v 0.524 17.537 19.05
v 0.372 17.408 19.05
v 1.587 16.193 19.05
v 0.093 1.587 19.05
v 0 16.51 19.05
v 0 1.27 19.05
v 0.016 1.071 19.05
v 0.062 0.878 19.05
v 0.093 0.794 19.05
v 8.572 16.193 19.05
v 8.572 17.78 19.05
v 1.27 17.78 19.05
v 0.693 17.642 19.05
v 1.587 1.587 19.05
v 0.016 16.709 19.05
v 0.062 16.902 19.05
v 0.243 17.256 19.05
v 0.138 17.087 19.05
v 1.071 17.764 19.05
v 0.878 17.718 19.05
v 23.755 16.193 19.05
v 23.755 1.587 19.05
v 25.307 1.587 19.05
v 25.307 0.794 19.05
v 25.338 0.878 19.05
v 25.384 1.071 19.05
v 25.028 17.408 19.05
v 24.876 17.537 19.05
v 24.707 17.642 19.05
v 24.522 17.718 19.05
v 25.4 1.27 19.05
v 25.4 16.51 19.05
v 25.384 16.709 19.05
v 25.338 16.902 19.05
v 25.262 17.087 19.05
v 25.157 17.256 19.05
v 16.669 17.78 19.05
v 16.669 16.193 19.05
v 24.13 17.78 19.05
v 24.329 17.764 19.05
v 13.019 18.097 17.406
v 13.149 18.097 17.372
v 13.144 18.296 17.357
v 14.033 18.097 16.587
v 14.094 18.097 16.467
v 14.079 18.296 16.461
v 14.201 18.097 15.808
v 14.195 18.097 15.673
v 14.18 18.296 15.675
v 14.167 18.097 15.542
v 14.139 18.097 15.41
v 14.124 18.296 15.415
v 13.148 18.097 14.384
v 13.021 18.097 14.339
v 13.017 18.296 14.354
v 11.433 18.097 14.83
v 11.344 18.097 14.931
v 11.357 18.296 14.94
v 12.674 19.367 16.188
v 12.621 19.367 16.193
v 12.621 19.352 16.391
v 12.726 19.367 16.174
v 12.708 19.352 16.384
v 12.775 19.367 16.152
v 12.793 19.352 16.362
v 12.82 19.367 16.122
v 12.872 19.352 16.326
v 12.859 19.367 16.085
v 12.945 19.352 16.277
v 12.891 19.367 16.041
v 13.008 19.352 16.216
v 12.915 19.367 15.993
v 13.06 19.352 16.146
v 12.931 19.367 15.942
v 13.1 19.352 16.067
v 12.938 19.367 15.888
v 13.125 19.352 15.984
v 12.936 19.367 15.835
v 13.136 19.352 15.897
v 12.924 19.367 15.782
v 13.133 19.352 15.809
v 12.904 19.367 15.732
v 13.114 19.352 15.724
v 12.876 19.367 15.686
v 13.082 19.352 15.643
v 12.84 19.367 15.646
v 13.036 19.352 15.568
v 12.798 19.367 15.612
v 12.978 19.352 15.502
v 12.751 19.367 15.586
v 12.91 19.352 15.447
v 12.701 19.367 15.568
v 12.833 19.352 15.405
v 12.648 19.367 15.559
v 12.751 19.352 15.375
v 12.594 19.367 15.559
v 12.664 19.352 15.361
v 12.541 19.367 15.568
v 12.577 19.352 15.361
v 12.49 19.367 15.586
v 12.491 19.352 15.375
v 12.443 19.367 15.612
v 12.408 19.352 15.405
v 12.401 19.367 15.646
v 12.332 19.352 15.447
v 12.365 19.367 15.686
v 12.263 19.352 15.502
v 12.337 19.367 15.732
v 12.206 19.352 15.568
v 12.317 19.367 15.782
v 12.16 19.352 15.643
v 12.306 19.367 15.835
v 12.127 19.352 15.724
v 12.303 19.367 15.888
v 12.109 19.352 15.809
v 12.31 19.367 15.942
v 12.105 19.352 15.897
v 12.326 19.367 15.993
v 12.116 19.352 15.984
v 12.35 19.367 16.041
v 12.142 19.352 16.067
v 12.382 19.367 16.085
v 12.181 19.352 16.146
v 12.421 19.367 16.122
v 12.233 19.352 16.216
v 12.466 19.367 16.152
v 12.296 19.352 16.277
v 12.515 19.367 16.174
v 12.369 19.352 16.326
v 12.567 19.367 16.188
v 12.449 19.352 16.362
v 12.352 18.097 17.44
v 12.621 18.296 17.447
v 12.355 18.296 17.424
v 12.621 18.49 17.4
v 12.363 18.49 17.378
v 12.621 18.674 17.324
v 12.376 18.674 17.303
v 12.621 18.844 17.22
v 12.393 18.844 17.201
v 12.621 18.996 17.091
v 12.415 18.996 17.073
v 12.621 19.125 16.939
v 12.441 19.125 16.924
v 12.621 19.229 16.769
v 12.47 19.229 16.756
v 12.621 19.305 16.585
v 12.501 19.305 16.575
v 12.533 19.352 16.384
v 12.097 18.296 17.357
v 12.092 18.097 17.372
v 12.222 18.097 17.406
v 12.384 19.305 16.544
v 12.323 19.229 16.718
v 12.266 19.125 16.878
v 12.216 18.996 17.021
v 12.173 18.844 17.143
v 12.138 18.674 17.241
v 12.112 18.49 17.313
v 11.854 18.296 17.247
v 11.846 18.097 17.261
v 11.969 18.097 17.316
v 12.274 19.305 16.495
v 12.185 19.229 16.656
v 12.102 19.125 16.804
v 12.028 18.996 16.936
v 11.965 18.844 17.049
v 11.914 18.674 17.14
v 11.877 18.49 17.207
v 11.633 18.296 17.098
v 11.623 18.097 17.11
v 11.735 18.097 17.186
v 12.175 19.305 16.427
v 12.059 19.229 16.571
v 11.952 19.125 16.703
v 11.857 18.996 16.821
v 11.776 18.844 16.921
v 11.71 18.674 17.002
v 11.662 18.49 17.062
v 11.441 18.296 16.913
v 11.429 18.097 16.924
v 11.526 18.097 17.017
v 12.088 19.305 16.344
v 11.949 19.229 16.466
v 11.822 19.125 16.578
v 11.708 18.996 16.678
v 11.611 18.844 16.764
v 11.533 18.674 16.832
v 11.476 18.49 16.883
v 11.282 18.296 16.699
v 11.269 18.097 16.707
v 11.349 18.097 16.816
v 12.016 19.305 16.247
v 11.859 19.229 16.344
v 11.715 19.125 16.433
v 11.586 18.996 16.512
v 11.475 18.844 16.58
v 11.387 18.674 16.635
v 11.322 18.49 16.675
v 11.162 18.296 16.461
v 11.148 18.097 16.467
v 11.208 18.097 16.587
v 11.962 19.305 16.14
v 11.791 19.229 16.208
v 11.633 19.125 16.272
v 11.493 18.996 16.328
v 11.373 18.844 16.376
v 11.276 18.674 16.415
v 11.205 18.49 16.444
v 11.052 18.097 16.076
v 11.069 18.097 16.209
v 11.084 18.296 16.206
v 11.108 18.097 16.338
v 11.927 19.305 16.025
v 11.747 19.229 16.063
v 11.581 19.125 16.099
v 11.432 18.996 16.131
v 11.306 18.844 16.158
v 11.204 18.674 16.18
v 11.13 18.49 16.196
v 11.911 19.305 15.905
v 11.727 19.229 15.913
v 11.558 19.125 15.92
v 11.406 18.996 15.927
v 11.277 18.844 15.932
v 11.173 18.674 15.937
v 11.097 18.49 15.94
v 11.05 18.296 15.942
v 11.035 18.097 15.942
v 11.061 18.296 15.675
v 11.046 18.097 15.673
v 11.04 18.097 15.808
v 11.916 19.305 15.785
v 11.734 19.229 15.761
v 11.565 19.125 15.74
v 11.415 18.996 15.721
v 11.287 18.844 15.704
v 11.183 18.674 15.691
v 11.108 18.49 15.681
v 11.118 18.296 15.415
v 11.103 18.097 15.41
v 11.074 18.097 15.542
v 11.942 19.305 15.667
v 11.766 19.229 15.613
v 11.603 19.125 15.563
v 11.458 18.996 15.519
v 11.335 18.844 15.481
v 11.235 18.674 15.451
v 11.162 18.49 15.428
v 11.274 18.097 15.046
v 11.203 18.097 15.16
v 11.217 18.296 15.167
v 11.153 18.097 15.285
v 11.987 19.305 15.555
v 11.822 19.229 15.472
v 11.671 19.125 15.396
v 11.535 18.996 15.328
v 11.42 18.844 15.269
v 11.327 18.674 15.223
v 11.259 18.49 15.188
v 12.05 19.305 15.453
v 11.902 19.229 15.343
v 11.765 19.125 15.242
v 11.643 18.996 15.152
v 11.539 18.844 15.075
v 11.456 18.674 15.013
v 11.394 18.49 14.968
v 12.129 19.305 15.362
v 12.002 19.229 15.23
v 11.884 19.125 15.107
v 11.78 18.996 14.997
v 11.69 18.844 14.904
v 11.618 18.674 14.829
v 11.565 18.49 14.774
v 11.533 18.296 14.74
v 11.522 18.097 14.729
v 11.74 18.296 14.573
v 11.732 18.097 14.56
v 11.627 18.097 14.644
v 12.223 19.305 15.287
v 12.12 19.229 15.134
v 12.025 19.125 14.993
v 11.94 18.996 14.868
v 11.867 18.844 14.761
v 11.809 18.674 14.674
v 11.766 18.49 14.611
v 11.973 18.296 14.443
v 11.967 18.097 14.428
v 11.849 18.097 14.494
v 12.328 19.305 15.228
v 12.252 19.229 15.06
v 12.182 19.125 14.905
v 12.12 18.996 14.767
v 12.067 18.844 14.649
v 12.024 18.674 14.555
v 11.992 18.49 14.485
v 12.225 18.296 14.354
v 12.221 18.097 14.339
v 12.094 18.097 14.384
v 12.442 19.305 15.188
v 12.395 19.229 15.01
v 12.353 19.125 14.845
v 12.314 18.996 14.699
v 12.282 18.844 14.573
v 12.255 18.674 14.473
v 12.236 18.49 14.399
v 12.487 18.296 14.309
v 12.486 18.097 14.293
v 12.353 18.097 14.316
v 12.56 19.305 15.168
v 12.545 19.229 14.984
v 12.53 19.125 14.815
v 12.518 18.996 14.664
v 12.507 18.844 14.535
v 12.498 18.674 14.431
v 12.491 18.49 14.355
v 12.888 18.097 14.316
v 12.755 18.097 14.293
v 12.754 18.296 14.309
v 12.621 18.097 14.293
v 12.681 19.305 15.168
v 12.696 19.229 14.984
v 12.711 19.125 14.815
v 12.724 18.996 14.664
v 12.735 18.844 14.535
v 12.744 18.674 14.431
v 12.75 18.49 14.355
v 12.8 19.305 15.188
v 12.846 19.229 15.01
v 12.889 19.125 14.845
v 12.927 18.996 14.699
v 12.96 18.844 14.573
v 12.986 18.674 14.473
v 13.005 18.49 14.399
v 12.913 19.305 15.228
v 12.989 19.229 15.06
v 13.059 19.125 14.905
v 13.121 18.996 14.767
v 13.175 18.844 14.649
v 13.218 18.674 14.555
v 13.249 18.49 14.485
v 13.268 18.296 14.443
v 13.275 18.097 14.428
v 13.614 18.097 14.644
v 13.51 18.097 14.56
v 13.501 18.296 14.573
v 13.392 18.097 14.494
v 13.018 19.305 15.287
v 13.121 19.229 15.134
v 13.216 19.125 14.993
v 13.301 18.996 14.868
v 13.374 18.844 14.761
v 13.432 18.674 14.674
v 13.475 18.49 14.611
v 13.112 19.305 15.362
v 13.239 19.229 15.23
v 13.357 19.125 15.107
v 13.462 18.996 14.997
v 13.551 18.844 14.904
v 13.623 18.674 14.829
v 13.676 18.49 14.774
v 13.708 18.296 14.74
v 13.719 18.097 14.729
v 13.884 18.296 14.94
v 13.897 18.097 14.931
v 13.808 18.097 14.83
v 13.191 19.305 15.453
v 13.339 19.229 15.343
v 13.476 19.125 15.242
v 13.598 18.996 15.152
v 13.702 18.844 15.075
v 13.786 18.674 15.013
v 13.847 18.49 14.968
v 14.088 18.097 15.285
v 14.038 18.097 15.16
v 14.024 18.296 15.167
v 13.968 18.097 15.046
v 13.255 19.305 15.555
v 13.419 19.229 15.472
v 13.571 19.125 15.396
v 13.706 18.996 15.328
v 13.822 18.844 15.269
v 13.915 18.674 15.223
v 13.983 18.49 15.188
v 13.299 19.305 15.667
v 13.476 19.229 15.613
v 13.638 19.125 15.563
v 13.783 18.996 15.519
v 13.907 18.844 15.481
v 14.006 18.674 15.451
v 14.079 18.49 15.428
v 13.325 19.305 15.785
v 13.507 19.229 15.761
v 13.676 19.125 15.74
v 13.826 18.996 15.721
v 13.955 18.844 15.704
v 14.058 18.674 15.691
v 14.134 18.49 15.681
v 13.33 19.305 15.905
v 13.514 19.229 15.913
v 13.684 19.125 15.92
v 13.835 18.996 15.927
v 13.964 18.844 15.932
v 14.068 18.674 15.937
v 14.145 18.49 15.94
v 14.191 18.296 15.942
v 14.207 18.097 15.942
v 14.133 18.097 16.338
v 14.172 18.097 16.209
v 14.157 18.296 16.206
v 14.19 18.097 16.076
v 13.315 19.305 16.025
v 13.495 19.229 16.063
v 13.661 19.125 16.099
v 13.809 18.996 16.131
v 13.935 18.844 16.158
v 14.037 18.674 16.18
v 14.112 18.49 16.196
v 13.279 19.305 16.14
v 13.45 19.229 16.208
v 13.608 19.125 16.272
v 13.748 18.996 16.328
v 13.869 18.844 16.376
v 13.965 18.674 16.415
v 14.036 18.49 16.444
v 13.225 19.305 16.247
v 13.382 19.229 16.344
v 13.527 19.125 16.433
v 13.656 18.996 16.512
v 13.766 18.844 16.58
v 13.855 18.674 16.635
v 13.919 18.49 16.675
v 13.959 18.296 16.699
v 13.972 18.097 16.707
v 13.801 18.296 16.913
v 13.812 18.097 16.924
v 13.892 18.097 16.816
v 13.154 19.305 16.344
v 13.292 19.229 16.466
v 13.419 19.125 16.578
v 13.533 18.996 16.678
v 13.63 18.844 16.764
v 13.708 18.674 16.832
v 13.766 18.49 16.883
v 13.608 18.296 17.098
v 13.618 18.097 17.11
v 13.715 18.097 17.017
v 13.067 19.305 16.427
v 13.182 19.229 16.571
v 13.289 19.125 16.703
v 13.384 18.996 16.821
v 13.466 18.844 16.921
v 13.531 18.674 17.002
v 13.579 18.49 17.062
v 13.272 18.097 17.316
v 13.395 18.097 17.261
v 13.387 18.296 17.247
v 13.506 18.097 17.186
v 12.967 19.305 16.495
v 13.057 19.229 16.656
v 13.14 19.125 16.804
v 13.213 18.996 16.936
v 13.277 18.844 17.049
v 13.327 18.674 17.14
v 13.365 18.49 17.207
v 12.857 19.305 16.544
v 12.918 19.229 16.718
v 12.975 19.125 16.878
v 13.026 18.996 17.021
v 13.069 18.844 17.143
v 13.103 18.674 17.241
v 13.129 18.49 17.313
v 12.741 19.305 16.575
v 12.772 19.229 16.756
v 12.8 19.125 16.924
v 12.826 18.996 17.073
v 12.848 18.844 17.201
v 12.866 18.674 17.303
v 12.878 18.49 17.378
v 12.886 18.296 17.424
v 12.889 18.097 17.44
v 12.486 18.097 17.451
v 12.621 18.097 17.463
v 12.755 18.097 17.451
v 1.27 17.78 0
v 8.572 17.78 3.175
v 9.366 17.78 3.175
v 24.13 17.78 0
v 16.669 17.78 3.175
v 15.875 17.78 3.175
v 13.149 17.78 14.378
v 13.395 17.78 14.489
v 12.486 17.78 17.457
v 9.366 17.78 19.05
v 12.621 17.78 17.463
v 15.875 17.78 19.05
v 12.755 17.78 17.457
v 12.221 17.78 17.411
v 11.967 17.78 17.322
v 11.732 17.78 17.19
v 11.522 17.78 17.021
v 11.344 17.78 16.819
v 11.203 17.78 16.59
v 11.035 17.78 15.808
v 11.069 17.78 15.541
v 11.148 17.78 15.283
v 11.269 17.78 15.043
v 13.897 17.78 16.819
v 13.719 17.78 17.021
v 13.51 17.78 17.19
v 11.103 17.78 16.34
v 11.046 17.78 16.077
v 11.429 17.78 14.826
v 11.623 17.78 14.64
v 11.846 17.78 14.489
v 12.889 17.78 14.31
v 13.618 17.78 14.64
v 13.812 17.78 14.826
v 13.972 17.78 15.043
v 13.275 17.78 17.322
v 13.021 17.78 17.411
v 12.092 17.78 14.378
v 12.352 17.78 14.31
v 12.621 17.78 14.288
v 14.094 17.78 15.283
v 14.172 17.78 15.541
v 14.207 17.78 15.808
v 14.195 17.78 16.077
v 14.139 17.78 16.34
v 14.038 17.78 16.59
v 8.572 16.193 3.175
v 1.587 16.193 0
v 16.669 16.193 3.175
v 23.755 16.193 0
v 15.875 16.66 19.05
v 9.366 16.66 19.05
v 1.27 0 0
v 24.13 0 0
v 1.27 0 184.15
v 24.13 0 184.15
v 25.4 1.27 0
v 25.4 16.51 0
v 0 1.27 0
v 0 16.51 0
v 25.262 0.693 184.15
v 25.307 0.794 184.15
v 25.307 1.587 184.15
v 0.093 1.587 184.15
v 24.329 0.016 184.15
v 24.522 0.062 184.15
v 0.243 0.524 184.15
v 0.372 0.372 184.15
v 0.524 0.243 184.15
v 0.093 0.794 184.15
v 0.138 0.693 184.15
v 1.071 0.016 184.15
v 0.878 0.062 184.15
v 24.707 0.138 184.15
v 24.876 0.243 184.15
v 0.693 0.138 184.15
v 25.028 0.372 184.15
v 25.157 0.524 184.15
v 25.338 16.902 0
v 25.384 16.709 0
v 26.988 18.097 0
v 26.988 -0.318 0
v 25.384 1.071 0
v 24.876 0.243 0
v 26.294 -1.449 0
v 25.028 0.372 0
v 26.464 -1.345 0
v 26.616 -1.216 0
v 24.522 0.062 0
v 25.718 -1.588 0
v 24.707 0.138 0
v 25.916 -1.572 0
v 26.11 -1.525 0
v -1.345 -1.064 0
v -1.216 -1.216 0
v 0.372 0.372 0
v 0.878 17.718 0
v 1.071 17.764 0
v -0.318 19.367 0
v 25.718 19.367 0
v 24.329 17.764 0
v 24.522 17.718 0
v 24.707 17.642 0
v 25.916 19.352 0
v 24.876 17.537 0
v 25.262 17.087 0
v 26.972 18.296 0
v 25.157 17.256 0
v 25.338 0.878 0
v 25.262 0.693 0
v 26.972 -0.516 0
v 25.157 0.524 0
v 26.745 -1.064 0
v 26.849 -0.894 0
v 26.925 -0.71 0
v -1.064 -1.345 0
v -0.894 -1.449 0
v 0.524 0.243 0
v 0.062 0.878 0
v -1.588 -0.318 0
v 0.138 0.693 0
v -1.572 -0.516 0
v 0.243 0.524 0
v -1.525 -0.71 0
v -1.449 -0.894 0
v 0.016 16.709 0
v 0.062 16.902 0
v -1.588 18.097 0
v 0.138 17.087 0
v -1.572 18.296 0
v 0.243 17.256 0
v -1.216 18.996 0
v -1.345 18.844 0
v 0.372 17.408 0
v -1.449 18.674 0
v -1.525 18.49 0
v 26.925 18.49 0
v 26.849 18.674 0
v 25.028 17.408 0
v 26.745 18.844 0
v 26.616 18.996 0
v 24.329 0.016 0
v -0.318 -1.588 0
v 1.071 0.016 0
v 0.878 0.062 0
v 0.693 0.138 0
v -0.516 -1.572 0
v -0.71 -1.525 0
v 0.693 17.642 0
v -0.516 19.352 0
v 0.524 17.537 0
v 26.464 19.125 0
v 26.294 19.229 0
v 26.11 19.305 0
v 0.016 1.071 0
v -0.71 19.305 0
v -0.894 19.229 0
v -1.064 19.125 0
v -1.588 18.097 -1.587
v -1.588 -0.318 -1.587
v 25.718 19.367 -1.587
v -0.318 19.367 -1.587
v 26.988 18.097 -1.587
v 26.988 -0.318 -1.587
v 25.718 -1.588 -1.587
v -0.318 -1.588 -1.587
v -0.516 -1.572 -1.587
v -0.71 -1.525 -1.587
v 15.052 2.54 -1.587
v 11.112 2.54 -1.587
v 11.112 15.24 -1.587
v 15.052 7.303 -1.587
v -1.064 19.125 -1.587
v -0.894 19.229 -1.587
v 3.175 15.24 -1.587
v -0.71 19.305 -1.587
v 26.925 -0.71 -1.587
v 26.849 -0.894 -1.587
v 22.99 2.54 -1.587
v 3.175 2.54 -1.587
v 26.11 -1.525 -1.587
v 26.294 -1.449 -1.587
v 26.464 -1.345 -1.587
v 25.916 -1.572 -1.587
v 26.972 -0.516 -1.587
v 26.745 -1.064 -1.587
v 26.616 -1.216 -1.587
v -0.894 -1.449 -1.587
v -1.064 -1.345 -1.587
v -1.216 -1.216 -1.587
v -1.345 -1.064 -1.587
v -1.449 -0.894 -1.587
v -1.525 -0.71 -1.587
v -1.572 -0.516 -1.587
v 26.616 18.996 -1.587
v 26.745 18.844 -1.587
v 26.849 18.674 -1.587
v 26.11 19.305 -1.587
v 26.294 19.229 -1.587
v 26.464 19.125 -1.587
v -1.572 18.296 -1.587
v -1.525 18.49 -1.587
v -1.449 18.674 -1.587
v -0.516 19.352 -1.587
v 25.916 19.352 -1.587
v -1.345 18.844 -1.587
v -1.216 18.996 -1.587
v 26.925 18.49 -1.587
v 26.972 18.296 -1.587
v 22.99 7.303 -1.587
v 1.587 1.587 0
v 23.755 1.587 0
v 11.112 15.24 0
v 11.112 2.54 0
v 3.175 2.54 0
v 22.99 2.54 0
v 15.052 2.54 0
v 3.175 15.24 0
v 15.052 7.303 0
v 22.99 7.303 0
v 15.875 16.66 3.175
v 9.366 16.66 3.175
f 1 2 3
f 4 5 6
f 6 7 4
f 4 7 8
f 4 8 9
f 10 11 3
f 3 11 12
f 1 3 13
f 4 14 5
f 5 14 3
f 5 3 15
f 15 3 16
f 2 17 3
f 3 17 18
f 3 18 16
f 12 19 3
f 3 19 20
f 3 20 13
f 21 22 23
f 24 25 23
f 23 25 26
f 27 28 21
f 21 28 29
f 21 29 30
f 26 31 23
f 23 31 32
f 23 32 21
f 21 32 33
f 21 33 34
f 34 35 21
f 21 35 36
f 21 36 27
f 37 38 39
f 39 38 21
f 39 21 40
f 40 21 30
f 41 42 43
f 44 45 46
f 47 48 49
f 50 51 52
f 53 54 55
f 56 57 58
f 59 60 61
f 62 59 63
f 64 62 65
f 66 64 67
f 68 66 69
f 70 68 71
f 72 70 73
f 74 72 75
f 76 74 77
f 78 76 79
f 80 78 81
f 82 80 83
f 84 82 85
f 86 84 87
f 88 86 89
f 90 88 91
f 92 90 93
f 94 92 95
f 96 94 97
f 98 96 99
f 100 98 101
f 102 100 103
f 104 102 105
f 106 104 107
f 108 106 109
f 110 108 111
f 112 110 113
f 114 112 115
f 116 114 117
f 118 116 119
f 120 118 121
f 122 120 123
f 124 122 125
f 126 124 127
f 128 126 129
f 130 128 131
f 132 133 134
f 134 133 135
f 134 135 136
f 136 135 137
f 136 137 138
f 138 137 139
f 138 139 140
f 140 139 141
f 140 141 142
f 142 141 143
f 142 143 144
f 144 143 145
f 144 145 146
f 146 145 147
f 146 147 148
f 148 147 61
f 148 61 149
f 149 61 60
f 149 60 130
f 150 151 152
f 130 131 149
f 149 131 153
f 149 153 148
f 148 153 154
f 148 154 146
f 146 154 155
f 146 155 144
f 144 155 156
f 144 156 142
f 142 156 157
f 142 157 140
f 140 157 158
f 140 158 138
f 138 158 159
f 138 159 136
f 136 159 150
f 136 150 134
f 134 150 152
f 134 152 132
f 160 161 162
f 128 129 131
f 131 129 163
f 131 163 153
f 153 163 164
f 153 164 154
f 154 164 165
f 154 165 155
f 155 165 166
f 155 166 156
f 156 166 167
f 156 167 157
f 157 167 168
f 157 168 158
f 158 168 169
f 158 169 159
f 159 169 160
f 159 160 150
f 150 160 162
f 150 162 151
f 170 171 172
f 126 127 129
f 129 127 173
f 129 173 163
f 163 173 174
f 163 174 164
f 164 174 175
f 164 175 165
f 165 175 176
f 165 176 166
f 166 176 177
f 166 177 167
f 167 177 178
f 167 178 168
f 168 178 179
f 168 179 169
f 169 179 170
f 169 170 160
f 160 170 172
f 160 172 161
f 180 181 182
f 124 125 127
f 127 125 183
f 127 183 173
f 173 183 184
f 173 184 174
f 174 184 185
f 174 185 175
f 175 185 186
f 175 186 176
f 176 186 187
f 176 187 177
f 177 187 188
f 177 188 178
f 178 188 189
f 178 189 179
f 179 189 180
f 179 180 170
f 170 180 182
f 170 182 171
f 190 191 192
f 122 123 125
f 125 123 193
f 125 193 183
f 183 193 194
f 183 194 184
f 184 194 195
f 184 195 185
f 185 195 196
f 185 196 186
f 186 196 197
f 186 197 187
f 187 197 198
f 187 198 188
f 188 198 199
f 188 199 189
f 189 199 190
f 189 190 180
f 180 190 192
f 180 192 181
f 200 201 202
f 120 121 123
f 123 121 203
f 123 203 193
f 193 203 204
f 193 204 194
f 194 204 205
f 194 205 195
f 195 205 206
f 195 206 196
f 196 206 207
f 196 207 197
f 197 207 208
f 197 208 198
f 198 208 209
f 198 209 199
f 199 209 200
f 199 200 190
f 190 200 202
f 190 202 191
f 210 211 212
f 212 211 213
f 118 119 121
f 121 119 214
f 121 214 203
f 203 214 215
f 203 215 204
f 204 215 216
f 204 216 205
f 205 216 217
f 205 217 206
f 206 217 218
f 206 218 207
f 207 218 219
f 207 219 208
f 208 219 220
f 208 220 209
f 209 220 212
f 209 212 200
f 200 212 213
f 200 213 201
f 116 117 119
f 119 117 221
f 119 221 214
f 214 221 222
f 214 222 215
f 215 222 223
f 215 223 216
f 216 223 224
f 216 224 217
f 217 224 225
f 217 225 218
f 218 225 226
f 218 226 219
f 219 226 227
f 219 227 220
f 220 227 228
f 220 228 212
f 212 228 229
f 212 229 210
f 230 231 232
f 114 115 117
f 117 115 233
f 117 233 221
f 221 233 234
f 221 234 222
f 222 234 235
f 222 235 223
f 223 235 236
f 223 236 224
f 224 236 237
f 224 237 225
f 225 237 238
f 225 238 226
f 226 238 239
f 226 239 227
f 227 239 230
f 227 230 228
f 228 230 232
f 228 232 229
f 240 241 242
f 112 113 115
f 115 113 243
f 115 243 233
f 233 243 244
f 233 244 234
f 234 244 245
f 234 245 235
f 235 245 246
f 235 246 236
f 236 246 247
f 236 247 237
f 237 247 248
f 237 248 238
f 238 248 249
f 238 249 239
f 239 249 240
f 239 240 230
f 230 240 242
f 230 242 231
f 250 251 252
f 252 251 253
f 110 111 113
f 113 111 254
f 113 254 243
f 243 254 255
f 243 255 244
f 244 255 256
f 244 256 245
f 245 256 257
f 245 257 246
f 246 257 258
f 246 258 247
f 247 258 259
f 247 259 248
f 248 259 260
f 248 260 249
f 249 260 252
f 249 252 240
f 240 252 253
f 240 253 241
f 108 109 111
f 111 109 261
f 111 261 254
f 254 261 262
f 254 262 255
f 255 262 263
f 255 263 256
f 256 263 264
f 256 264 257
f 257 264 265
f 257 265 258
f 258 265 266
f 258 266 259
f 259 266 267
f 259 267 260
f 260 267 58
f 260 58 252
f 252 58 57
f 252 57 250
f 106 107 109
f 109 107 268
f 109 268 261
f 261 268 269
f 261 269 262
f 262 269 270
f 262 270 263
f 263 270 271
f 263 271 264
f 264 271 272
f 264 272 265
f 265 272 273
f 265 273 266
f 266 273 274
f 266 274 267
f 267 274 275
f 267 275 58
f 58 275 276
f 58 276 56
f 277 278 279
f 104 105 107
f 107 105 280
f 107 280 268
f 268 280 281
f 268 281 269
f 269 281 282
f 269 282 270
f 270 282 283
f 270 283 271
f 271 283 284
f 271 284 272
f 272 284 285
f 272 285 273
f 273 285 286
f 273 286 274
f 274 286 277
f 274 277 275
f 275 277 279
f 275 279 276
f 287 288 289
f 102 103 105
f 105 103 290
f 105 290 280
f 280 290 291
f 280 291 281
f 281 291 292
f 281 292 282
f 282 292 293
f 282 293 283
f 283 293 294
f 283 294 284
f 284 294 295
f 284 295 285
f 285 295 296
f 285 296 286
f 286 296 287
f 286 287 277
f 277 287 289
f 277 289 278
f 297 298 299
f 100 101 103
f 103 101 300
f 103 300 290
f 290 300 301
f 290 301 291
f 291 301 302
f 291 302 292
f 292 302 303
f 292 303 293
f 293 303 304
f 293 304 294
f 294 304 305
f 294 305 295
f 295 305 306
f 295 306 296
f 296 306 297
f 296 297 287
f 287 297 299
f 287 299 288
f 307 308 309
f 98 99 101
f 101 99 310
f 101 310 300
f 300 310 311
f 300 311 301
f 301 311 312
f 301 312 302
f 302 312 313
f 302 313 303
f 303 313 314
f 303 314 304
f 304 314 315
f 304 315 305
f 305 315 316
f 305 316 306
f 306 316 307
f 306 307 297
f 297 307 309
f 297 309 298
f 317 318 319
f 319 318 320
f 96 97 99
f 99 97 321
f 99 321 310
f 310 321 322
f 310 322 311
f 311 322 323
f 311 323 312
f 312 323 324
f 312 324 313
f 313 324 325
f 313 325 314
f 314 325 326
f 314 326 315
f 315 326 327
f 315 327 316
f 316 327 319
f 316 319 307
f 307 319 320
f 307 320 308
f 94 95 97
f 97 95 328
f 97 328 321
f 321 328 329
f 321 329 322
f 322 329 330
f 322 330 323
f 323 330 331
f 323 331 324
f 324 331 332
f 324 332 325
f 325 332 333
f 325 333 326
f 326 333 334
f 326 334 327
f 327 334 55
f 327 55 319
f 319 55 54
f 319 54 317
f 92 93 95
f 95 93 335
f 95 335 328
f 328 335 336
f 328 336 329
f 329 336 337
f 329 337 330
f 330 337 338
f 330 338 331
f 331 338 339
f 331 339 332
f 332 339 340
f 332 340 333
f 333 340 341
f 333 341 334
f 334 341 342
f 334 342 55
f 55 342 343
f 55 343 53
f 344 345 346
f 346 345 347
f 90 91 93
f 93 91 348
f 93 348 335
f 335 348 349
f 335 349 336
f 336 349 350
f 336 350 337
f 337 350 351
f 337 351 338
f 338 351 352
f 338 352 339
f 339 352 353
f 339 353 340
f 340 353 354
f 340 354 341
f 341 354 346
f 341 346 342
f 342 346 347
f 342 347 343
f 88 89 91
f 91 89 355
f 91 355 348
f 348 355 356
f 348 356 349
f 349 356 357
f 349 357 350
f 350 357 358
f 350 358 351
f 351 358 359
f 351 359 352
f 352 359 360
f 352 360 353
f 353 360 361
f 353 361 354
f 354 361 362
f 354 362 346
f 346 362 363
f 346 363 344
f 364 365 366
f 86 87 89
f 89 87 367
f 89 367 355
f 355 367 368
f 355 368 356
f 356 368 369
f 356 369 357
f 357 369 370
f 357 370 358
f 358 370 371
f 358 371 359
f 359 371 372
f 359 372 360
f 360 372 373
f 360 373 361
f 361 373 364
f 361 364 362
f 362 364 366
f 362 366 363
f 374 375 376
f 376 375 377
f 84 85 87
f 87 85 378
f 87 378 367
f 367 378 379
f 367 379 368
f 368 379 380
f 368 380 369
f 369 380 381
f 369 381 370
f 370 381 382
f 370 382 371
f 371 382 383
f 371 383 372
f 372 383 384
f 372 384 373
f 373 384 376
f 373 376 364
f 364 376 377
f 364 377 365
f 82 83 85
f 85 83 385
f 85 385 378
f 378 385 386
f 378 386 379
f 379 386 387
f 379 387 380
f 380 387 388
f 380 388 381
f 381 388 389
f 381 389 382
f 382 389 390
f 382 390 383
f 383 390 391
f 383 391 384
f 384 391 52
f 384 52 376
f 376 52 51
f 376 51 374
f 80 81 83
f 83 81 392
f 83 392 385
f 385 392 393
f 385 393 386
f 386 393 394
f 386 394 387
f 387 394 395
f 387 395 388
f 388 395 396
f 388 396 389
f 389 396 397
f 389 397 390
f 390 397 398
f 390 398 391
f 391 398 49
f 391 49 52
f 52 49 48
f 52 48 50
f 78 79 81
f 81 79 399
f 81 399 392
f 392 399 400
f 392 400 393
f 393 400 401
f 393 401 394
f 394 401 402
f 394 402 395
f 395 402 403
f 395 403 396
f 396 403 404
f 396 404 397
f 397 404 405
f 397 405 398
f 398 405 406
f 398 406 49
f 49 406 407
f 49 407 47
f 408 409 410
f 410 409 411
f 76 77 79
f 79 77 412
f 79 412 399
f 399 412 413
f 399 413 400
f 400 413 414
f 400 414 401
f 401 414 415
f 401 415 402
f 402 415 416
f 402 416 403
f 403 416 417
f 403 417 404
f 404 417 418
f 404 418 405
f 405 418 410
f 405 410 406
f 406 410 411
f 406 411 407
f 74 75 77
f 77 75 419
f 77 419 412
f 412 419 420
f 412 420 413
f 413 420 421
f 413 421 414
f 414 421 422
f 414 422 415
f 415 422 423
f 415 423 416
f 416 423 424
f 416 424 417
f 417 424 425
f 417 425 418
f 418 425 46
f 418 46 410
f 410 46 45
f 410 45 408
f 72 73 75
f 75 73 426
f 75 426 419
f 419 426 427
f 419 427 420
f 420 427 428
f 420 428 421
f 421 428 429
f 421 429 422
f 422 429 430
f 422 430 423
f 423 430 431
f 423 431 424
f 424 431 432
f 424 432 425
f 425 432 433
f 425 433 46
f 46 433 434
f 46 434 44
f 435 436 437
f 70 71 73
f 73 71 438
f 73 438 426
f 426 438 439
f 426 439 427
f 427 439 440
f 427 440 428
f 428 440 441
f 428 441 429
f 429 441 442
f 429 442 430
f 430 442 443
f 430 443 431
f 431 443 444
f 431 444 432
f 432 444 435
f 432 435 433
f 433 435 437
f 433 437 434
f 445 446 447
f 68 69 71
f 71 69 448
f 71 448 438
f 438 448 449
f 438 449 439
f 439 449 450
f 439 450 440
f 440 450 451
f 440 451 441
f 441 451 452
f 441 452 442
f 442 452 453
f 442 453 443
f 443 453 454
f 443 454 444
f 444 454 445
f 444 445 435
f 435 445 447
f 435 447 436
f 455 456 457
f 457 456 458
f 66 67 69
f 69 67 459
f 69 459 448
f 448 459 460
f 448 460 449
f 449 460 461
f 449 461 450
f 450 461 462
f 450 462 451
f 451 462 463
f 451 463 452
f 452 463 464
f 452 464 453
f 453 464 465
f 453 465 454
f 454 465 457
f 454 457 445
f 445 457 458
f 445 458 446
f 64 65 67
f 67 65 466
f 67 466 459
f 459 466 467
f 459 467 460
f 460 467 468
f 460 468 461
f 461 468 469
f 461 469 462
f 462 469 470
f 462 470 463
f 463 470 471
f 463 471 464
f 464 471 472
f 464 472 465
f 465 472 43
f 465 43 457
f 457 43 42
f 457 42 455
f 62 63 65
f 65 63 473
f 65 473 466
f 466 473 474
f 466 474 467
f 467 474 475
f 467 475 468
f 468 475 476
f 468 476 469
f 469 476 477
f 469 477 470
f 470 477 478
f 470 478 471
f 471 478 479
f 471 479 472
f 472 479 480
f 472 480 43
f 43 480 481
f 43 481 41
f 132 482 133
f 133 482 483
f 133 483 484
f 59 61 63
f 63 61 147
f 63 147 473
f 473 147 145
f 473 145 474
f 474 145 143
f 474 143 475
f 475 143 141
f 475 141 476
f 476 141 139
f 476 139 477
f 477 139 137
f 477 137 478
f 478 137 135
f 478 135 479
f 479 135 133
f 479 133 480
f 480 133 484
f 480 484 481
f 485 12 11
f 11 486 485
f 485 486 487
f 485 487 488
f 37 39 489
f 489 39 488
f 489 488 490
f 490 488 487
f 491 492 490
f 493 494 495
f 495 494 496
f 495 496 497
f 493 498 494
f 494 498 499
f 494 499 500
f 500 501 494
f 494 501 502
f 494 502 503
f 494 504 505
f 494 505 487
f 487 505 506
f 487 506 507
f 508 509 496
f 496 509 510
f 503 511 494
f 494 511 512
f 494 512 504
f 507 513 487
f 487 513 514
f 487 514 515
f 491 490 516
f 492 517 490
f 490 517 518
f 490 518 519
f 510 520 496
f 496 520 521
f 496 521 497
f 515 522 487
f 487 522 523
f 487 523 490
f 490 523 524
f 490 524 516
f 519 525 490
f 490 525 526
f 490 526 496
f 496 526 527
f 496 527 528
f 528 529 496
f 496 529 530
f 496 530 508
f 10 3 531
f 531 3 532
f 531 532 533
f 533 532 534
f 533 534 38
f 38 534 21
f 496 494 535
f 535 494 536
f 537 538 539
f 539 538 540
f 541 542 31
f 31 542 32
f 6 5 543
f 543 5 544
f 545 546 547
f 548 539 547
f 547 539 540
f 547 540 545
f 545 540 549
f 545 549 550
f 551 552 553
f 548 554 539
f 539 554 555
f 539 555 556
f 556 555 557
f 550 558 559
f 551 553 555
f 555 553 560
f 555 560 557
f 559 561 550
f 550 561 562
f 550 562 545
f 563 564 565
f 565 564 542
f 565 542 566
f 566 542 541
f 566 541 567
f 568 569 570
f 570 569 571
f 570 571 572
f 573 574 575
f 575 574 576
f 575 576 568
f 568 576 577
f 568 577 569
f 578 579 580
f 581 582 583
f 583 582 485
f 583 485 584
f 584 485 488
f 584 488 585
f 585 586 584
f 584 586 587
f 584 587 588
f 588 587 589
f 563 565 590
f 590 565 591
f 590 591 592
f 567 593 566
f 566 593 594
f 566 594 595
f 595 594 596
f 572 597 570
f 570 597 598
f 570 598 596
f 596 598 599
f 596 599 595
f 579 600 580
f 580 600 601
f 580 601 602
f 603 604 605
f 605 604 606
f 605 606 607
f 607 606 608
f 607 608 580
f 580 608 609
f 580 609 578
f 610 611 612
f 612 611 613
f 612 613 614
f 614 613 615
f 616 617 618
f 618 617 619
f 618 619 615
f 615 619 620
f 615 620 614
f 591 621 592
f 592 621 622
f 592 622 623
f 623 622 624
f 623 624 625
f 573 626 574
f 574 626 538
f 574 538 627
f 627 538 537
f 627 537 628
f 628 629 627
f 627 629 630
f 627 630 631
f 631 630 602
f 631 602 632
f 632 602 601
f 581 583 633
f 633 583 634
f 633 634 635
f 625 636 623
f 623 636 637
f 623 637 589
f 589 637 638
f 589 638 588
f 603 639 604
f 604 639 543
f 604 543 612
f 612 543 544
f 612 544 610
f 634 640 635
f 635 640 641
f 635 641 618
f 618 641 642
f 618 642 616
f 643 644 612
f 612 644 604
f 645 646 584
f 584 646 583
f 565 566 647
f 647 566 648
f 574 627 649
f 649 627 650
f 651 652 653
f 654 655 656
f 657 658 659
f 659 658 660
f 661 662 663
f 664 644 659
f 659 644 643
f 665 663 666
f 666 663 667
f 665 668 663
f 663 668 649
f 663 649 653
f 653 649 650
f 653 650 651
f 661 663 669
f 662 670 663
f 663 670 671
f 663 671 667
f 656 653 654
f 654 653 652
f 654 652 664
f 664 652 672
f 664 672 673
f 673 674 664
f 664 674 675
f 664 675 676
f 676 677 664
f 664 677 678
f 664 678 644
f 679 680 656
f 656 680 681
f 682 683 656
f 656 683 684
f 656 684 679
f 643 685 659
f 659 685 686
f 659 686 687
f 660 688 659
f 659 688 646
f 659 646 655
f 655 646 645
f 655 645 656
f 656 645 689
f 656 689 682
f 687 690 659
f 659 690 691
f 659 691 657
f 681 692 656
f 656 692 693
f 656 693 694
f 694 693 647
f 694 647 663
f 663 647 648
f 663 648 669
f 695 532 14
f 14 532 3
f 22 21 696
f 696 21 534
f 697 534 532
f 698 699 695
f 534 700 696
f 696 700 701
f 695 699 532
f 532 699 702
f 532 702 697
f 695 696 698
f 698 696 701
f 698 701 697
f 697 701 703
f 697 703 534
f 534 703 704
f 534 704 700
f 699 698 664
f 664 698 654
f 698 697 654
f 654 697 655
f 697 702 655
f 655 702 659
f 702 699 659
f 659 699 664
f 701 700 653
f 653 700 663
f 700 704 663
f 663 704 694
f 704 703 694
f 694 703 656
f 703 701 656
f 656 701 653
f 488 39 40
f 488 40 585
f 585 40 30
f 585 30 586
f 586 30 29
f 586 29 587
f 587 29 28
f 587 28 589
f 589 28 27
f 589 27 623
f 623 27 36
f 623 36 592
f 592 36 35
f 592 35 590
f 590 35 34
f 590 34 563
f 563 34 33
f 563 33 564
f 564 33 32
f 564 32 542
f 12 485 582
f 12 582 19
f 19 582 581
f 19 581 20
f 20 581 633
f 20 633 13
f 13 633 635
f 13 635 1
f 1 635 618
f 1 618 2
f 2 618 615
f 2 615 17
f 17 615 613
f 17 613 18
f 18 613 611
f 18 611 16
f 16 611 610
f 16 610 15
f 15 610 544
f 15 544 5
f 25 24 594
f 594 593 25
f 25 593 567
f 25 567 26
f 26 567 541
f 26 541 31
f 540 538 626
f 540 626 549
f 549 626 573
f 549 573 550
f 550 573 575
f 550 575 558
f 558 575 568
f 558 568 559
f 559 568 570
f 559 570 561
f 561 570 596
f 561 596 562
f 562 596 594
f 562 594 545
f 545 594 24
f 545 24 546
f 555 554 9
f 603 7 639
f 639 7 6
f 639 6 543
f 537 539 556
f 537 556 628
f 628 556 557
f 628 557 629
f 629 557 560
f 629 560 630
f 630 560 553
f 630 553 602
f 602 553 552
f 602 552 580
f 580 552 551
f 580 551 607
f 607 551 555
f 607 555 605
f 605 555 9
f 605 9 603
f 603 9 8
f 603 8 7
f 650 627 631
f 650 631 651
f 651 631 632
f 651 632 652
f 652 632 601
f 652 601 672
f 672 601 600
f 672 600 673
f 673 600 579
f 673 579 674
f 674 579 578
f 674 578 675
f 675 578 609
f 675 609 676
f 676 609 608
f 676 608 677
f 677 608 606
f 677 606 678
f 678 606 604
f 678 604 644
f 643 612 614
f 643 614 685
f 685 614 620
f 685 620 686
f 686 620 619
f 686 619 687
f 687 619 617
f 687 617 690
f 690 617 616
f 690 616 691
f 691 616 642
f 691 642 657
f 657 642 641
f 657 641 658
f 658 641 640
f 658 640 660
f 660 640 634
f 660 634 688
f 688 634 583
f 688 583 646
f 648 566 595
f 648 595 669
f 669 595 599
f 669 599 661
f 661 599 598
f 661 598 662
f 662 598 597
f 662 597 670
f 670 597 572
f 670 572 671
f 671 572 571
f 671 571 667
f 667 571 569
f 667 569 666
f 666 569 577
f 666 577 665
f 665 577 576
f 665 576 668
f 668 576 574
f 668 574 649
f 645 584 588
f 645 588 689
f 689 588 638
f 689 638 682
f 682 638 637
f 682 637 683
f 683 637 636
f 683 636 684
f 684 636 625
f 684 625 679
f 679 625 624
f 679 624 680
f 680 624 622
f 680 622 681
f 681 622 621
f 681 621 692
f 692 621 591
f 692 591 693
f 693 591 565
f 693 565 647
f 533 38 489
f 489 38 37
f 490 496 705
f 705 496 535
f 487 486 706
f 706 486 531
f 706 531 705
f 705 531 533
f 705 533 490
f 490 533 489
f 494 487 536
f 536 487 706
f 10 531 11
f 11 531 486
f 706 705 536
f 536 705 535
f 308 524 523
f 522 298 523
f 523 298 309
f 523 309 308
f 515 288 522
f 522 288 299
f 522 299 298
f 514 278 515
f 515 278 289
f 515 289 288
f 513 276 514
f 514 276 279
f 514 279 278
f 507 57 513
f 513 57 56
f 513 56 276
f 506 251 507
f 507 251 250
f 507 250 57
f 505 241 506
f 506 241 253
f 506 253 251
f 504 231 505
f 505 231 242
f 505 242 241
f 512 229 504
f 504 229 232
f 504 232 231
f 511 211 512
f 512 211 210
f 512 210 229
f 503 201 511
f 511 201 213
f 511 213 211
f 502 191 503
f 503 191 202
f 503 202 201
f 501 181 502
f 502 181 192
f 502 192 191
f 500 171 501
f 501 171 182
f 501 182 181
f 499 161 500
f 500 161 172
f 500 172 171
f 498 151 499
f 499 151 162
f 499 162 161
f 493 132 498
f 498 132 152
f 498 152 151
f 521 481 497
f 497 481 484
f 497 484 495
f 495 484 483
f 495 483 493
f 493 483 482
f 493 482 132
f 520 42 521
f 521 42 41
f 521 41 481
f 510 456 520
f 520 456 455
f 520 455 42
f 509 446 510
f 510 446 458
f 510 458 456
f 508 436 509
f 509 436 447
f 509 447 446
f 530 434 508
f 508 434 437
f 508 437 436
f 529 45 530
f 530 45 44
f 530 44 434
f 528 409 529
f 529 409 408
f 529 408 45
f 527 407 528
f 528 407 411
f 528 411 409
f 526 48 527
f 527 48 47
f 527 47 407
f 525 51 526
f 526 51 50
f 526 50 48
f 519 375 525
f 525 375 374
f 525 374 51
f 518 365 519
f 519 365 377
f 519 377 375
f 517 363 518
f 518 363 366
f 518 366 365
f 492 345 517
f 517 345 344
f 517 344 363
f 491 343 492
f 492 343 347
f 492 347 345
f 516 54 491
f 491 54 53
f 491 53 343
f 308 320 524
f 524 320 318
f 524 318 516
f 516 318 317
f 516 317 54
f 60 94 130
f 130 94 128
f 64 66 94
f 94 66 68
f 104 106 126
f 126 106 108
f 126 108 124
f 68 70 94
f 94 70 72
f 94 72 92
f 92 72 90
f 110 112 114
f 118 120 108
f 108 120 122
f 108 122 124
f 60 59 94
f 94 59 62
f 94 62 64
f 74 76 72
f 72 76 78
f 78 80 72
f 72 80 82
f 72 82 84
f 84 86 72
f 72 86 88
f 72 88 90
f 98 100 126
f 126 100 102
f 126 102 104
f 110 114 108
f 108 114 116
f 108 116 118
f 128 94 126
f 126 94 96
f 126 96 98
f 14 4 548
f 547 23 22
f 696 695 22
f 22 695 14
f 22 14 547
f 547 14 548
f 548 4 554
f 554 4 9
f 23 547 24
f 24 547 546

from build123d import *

# Parameters (mm, degrees)
SKETCH1_W           = 25.4
SKETCH1_H           = 17.78
BOSS_EXTRUDE1_DEPTH = 19.05
SKETCH2_W           = 25.4
SKETCH2_H           = 0.79375
BOSS_EXTRUDE2_DEPTH = 165.1
SKETCH3_W           = 28.575
SKETCH3_H           = 20.955
BOSS_EXTRUDE3_DEPTH = 1.5875
SKETCH4_W           = 22.167429019
SKETCH4_H           = 15.39875
CUT_EXTRUDE1_DEPTH  = 19.05
CUT_EXTRUDE2_DEPTH  = 1.5875
SKETCH8_W           = 7.9375
SKETCH8_H           = 4.7625
CUT_EXTRUDE3_DEPTH  = 1.5875
FILLET9_R           = 1.27
FILLET10_R          = 1.27
FILLET11_R          = 1.27
FILLET12_R          = 1.27
FILLET13_R          = 1.27
FILLET14_R          = 1.27
FILLET15_R          = 1.27
FILLET16_R          = 1.27
SKETCH9_W           = 0.79375
SKETCH9_H           = 15.875
CUT_EXTRUDE5_DEPTH  = 1.5875
SKETCH11_W          = 0.79375
SKETCH11_H          = 15.875
CUT_EXTRUDE6_DEPTH  = 1.5875
SKETCH12_W          = 6.50875
SKETCH12_H          = 0.467297544
CUT_EXTRUDE7_DEPTH  = 15.875
SKETCH13_R          = 1.5875
BOSS_EXTRUDE5_DEPTH = 1.5875
FILLET22_R          = 1.27
SKETCH17_W          = 22.167429019
SKETCH17_H          = 19.05
BOSS_EXTRUDE6_DEPTH = 0.79375
SKETCH18_W          = 25.21464302
SKETCH18_H          = 165.1
BOSS_EXTRUDE7_DEPTH = 0.79375


with BuildPart() as part:
    # Sketch1 → Boss-Extrude1 (new body)
    with BuildSketch(Plane.XY):
        with Locations((12.7, 8.89)):
            Rectangle(SKETCH1_W, SKETCH1_H)
    extrude(amount=BOSS_EXTRUDE1_DEPTH)

    # Sketch2 → Boss-Extrude2 (add)
    with BuildSketch(Plane.XY.offset(19.05)):
        with Locations((12.7, 0.396875)):
            Rectangle(SKETCH2_W, SKETCH2_H)
    extrude(amount=BOSS_EXTRUDE2_DEPTH)

    # Sketch3 → Boss-Extrude3 (add)
    with BuildSketch(Plane(origin=(0, 0, 0), x_dir=(-1, 0, 0), z_dir=(0, 0, -1))):
        with Locations((-12.7, 8.89)):
            Rectangle(SKETCH3_W, SKETCH3_H)
    extrude(amount=BOSS_EXTRUDE3_DEPTH)

    # Sketch4 → Cut-Extrude1 (cut)
    with BuildSketch(Plane.XY.offset(19.05)):
        with Locations((12.67121451, 8.493125)):
            Rectangle(SKETCH4_W, SKETCH4_H)
    extrude(amount=-CUT_EXTRUDE1_DEPTH, mode=Mode.SUBTRACT)

    # Sketch5 → Cut-Extrude2 (cut)
    with BuildSketch(Plane(origin=(0, 0, -1.5875), x_dir=(-1, 0, 0), z_dir=(0, 0, -1))):
        Polygon((-11.1125, 15.24), (-11.1125, 8.89), (-11.1125, 2.54), (-3.175, 2.54), (-3.175, 15.24), align=None)
    extrude(amount=-CUT_EXTRUDE2_DEPTH, mode=Mode.SUBTRACT)

    # Sketch8 → Cut-Extrude3 (cut)
    with BuildSketch(Plane(origin=(0, 0, -1.5875), x_dir=(-1, 0, 0), z_dir=(0, 0, -1))):
        with Locations((-19.021212582, 4.92125)):
            Rectangle(SKETCH8_W, SKETCH8_H)
    extrude(amount=-CUT_EXTRUDE3_DEPTH, mode=Mode.SUBTRACT)

    # Fillet9
    fillet9_edges = [part.edges().sort_by_distance(p)[0] for p in [
        (25.4, 17.78, 9.525),
    ]]
    fillet(fillet9_edges, radius=FILLET9_R)

    # Fillet10
    fillet10_edges = [part.edges().sort_by_distance(p)[0] for p in [
        (0, 17.78, 9.525),
    ]]
    fillet(fillet10_edges, radius=FILLET10_R)

    # Fillet11
    # the kernel refuses this fillet: 1.27 mm, written as the material it takes off along each edge
    with BuildSketch(Plane(origin=(25.4, 0, 0), x_dir=(0, 1, 0), z_dir=(0, 0, 1))) as fillet11_piece_1:
        with BuildLine():
            CenterArc((FILLET11_R, FILLET11_R), FILLET11_R, 180, 90)
            Line((0, FILLET11_R), (0, 0))
            Line((0, 0), (FILLET11_R, 0))
        make_face()
    extrude(amount=187.325, mode=Mode.SUBTRACT)

    # Fillet12
    # the kernel refuses this fillet: 1.27 mm, written as the material it takes off along each edge
    with BuildSketch(Plane(origin=(0, 0, 187.325), x_dir=(0, 1, 0), z_dir=(0, 0, -1))) as fillet12_piece_1:
        with BuildLine():
            CenterArc((FILLET12_R, FILLET12_R), FILLET12_R, 180, 90)
            Line((0, FILLET12_R), (0, 0))
            Line((0, 0), (FILLET12_R, 0))
        make_face()
    extrude(amount=187.325, mode=Mode.SUBTRACT)

    # Fillet13
    fillet13_edges = [part.edges().sort_by_distance(p)[0] for p in [
        (-1.5875, -1.5875, -0.79375),
    ]]
    fillet(fillet13_edges, radius=FILLET13_R)

    # Fillet14
    fillet14_edges = [part.edges().sort_by_distance(p)[0] for p in [
        (-1.5875, 19.3675, -0.79375),
    ]]
    fillet(fillet14_edges, radius=FILLET14_R)

    # Fillet15
    fillet15_edges = [part.edges().sort_by_distance(p)[0] for p in [
        (26.9875, -1.5875, -0.79375),
    ]]
    fillet(fillet15_edges, radius=FILLET15_R)

    # Fillet16
    fillet16_edges = [part.edges().sort_by_distance(p)[0] for p in [
        (26.9875, 19.3675, -0.79375),
    ]]
    fillet(fillet16_edges, radius=FILLET16_R)

    # Sketch9 → Cut-Extrude5 (cut)
    with BuildSketch(Plane(origin=(0, 17.78, 0), x_dir=(1, 0, 0), z_dir=(0, 1, 0))):
        with Locations((16.271875, -11.1125)):
            Rectangle(SKETCH9_W, SKETCH9_H)
    extrude(amount=-CUT_EXTRUDE5_DEPTH, mode=Mode.SUBTRACT)

    # Sketch11 → Cut-Extrude6 (cut)
    with BuildSketch(Plane(origin=(0, 17.78, 0), x_dir=(1, 0, 0), z_dir=(0, 1, 0))):
        with Locations((8.969375, -11.1125)):
            Rectangle(SKETCH11_W, SKETCH11_H)
    extrude(amount=-CUT_EXTRUDE6_DEPTH, mode=Mode.SUBTRACT)

    # Sketch12 → Cut-Extrude7 (cut)
    with BuildSketch(Plane.XY.offset(19.05)):
        with Locations((12.620625, 16.426148772)):
            Rectangle(SKETCH12_W, SKETCH12_H)
    extrude(amount=-CUT_EXTRUDE7_DEPTH, mode=Mode.SUBTRACT)

    # Sketch13 → Boss-Extrude5 (add)
    with BuildSketch(Plane(origin=(0, 17.78, 0), x_dir=(1, 0, 0), z_dir=(0, 1, 0))):
        with Locations(Location((12.620625, -15.875, 0), (0, 0, 270))):
            Circle(SKETCH13_R)
    extrude(amount=BOSS_EXTRUDE5_DEPTH)

    # Fillet22
    fillet22_edges = [part.edges().sort_by_distance(p)[0] for p in [
        (12.620625, 19.3675, 14.2875),
    ]]
    fillet(fillet22_edges, radius=FILLET22_R)

    # Sketch17 → Boss-Extrude6 (add)
    with BuildSketch(Plane(origin=(0, 0.79375, 0), x_dir=(1, 0, 0), z_dir=(0, 1, 0))):
        with Locations((12.67121451, -9.525)):
            Rectangle(SKETCH17_W, SKETCH17_H)
    extrude(amount=BOSS_EXTRUDE6_DEPTH)

    # Sketch18 → Boss-Extrude7 (add)
    with BuildSketch(Plane(origin=(0, 0.79375, 0), x_dir=(1, 0, 0), z_dir=(0, 1, 0))):
        with Locations((12.7, -101.6)):
            Rectangle(SKETCH18_W, SKETCH18_H)
    extrude(amount=BOSS_EXTRUDE7_DEPTH)


solid = part.part
